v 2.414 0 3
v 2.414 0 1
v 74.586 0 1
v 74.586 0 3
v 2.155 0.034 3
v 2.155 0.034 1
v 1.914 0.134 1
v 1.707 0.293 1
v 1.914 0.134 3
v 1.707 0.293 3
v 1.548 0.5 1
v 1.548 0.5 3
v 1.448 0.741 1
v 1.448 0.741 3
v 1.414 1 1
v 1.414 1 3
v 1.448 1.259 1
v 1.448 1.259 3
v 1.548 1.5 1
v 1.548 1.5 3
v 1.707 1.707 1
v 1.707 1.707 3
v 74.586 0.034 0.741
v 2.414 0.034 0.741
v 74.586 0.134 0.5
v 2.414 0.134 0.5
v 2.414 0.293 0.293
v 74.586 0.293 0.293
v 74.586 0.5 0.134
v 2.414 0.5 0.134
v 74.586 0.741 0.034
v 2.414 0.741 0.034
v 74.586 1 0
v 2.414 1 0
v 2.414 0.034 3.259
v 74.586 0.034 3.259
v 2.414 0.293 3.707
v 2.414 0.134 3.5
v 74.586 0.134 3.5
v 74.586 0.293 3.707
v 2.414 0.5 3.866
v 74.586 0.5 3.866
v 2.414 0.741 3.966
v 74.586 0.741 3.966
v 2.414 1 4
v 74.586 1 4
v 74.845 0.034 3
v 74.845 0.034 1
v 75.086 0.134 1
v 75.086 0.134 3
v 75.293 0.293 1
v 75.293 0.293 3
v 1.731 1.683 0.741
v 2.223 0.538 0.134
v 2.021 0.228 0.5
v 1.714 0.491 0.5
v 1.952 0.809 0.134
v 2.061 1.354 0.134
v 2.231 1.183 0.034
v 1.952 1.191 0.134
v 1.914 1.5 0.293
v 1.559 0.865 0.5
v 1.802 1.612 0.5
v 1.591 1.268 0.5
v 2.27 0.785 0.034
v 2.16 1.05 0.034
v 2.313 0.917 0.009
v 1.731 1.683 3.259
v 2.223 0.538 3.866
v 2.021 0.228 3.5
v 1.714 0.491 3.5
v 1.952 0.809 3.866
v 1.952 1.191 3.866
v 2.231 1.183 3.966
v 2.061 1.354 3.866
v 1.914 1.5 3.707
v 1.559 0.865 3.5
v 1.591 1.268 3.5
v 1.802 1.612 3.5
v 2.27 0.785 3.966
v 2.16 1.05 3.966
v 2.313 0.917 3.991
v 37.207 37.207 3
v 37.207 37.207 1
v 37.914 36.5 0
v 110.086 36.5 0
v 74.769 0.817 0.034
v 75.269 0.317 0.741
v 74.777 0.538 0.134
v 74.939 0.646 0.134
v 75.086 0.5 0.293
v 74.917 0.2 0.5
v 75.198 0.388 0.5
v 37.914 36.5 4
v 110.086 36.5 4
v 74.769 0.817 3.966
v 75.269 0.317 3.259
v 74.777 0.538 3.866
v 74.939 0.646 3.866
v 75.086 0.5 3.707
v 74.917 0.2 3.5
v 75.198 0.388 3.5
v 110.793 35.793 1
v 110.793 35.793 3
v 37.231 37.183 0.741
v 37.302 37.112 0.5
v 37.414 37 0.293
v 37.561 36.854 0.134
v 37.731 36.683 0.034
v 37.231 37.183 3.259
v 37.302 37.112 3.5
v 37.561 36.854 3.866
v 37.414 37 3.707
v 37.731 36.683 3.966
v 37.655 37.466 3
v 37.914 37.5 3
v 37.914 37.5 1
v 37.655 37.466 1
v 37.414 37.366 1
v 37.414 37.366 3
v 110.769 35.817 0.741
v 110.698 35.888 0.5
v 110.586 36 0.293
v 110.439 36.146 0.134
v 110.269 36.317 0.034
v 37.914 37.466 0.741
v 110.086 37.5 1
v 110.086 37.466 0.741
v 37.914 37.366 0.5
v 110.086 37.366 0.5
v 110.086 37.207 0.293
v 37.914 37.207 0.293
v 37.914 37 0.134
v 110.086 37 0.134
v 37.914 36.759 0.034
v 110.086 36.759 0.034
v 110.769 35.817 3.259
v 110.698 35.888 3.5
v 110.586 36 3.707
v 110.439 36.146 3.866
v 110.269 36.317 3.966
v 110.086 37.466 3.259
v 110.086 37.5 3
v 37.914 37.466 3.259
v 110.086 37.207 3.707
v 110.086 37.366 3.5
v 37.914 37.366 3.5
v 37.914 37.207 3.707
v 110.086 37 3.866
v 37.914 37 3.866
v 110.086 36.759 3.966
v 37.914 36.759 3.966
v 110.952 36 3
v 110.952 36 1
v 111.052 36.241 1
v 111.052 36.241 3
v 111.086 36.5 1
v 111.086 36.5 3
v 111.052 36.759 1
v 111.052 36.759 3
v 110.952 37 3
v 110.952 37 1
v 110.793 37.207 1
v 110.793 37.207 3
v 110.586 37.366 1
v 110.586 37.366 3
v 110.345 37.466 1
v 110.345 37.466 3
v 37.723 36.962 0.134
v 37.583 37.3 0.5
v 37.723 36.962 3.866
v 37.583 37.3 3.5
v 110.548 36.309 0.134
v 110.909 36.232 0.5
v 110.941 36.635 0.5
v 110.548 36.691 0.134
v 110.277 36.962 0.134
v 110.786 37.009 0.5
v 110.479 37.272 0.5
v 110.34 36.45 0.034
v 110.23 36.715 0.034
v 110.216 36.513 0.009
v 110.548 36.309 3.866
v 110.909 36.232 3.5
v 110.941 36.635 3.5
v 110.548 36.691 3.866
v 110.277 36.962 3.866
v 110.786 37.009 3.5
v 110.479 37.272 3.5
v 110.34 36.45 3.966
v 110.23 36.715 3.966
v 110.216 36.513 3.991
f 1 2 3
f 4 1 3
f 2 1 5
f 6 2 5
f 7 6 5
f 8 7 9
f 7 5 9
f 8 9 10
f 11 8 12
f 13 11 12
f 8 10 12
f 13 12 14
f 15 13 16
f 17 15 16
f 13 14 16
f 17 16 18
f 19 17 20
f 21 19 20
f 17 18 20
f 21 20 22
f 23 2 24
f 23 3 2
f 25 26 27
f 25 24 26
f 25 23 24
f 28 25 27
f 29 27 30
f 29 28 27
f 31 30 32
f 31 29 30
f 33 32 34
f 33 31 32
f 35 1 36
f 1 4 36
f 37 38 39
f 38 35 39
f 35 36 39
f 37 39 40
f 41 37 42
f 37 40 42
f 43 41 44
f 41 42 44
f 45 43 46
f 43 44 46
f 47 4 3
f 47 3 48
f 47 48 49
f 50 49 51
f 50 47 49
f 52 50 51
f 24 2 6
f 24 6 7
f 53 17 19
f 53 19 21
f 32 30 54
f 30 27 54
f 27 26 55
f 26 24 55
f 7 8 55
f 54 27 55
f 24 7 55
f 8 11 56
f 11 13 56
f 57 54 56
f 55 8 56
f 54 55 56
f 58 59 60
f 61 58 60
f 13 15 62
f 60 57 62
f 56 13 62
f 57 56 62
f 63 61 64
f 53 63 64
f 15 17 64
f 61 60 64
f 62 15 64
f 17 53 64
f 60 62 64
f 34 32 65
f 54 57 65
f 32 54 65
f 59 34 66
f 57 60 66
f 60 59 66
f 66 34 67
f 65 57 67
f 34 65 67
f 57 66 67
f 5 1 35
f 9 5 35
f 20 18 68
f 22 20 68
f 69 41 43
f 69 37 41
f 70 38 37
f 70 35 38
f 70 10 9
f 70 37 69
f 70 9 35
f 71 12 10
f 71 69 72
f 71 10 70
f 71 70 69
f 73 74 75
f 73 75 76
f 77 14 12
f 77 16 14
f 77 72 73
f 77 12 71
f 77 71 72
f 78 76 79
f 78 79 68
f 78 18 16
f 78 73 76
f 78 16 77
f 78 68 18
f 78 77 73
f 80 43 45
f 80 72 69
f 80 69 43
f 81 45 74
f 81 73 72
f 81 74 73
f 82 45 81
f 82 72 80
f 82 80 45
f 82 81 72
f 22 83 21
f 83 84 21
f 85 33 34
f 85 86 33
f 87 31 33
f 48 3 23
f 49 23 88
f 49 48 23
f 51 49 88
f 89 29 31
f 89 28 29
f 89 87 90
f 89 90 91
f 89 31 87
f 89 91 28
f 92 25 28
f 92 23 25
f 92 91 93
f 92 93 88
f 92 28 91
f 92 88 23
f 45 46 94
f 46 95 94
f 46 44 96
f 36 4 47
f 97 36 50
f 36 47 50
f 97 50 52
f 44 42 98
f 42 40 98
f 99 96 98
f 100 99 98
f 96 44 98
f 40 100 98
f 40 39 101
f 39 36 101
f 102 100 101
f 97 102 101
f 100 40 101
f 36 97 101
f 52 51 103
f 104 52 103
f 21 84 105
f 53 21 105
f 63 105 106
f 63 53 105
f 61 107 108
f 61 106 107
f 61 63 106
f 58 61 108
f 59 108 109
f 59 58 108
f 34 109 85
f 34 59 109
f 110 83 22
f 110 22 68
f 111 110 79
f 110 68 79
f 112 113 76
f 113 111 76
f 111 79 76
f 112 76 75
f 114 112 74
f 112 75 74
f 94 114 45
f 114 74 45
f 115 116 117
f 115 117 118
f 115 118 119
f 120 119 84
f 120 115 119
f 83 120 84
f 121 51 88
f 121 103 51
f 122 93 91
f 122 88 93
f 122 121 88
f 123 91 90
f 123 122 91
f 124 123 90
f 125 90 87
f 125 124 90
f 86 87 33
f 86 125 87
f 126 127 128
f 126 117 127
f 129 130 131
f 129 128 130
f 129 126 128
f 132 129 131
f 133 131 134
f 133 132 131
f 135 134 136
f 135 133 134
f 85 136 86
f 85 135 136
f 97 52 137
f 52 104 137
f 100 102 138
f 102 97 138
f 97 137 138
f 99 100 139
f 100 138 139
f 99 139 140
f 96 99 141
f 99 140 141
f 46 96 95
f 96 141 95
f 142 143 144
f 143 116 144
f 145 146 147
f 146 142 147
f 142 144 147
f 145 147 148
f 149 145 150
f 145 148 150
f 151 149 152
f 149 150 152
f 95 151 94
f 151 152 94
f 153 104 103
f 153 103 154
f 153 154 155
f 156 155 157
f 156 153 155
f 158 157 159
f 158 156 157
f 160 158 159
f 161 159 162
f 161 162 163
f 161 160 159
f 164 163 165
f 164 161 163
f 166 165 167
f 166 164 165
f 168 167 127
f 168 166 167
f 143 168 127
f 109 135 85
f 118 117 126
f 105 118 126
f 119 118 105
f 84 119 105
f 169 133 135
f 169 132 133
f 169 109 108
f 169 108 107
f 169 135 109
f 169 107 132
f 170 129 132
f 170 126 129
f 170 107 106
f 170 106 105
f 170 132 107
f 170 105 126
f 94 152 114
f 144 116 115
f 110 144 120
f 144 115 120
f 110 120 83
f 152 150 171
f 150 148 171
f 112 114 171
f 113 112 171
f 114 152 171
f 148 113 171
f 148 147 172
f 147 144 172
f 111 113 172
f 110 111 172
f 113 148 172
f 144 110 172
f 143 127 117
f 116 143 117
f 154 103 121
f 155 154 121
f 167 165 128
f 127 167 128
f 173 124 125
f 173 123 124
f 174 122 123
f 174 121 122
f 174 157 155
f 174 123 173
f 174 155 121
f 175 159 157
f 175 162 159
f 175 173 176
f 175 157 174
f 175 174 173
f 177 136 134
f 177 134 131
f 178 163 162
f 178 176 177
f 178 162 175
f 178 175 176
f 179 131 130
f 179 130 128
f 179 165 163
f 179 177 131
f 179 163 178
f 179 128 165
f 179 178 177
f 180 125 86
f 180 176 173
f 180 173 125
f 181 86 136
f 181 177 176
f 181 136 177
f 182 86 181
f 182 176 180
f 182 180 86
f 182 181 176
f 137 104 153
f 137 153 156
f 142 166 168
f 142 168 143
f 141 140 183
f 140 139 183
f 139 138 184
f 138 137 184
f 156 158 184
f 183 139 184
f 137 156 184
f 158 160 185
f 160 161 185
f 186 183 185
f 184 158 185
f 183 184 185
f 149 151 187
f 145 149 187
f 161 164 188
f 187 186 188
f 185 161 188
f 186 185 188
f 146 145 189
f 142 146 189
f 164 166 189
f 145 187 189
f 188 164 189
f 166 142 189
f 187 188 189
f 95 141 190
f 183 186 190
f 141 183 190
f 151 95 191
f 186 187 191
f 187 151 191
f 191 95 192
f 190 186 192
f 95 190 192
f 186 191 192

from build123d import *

# Parameters (mm, degrees)
PAD_DEPTH = 4
FILLET_R  = 1


with BuildPart() as part:
    # Sketch → Pad (new body)
    with BuildSketch(Plane.XY):
        Polygon((0, 0), (75, 0), (112.5, 37.5), (37.5, 37.5), align=None)
    extrude(amount=PAD_DEPTH)

    # Fillet
    fillet_edges = [part.edges().sort_by_distance(p)[0] for p in [
        (0, 0, 2),
        (75, 0, 2),
        (37.5, 0, 0),
        (37.5, 0, 4),
        (112.5, 37.5, 2),
        (93.75, 18.75, 0),
        (93.75, 18.75, 4),
        (37.5, 37.5, 2),
        (75, 37.5, 0),
        (75, 37.5, 4),
        (18.75, 18.75, 0),
        (18.75, 18.75, 4),
    ]]
    fillet(fillet_edges, radius=FILLET_R)


solid = part.part
